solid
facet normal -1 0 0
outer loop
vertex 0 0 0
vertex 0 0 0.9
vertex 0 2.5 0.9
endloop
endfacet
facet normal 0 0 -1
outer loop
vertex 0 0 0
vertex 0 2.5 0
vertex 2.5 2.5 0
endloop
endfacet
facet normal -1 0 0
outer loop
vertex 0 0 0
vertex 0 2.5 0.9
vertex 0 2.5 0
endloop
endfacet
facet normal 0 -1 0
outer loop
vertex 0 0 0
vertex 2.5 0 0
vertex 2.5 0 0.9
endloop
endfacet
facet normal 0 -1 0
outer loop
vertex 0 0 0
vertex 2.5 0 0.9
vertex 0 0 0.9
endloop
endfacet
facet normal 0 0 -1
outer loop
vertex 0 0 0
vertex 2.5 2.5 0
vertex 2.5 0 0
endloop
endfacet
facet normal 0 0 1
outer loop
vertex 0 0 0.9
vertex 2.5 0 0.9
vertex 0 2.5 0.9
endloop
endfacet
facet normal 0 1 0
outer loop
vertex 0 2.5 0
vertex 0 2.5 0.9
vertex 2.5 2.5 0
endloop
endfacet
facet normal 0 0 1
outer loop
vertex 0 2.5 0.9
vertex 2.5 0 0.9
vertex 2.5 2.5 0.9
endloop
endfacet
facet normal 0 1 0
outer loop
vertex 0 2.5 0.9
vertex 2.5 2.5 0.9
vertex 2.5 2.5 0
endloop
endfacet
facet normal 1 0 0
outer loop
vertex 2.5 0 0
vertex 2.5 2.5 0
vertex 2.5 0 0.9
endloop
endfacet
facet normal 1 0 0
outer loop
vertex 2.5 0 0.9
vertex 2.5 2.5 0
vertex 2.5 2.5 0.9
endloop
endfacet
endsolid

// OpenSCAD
/* Warning, this is a very basic generator with a lot of approximation 
input data : [VQFN, MSA, 2.5x2.5x0.90mm, 14, , B, C04-01096B]
generated by com.zoubworld.electronics.cad.model3d.Basic
Date : Sun Feb 15 10:50:49 CET 2026
*/

//body
color("black")
translate([0,0,0])
cube([2.5,2.5,0.9], center=false);
